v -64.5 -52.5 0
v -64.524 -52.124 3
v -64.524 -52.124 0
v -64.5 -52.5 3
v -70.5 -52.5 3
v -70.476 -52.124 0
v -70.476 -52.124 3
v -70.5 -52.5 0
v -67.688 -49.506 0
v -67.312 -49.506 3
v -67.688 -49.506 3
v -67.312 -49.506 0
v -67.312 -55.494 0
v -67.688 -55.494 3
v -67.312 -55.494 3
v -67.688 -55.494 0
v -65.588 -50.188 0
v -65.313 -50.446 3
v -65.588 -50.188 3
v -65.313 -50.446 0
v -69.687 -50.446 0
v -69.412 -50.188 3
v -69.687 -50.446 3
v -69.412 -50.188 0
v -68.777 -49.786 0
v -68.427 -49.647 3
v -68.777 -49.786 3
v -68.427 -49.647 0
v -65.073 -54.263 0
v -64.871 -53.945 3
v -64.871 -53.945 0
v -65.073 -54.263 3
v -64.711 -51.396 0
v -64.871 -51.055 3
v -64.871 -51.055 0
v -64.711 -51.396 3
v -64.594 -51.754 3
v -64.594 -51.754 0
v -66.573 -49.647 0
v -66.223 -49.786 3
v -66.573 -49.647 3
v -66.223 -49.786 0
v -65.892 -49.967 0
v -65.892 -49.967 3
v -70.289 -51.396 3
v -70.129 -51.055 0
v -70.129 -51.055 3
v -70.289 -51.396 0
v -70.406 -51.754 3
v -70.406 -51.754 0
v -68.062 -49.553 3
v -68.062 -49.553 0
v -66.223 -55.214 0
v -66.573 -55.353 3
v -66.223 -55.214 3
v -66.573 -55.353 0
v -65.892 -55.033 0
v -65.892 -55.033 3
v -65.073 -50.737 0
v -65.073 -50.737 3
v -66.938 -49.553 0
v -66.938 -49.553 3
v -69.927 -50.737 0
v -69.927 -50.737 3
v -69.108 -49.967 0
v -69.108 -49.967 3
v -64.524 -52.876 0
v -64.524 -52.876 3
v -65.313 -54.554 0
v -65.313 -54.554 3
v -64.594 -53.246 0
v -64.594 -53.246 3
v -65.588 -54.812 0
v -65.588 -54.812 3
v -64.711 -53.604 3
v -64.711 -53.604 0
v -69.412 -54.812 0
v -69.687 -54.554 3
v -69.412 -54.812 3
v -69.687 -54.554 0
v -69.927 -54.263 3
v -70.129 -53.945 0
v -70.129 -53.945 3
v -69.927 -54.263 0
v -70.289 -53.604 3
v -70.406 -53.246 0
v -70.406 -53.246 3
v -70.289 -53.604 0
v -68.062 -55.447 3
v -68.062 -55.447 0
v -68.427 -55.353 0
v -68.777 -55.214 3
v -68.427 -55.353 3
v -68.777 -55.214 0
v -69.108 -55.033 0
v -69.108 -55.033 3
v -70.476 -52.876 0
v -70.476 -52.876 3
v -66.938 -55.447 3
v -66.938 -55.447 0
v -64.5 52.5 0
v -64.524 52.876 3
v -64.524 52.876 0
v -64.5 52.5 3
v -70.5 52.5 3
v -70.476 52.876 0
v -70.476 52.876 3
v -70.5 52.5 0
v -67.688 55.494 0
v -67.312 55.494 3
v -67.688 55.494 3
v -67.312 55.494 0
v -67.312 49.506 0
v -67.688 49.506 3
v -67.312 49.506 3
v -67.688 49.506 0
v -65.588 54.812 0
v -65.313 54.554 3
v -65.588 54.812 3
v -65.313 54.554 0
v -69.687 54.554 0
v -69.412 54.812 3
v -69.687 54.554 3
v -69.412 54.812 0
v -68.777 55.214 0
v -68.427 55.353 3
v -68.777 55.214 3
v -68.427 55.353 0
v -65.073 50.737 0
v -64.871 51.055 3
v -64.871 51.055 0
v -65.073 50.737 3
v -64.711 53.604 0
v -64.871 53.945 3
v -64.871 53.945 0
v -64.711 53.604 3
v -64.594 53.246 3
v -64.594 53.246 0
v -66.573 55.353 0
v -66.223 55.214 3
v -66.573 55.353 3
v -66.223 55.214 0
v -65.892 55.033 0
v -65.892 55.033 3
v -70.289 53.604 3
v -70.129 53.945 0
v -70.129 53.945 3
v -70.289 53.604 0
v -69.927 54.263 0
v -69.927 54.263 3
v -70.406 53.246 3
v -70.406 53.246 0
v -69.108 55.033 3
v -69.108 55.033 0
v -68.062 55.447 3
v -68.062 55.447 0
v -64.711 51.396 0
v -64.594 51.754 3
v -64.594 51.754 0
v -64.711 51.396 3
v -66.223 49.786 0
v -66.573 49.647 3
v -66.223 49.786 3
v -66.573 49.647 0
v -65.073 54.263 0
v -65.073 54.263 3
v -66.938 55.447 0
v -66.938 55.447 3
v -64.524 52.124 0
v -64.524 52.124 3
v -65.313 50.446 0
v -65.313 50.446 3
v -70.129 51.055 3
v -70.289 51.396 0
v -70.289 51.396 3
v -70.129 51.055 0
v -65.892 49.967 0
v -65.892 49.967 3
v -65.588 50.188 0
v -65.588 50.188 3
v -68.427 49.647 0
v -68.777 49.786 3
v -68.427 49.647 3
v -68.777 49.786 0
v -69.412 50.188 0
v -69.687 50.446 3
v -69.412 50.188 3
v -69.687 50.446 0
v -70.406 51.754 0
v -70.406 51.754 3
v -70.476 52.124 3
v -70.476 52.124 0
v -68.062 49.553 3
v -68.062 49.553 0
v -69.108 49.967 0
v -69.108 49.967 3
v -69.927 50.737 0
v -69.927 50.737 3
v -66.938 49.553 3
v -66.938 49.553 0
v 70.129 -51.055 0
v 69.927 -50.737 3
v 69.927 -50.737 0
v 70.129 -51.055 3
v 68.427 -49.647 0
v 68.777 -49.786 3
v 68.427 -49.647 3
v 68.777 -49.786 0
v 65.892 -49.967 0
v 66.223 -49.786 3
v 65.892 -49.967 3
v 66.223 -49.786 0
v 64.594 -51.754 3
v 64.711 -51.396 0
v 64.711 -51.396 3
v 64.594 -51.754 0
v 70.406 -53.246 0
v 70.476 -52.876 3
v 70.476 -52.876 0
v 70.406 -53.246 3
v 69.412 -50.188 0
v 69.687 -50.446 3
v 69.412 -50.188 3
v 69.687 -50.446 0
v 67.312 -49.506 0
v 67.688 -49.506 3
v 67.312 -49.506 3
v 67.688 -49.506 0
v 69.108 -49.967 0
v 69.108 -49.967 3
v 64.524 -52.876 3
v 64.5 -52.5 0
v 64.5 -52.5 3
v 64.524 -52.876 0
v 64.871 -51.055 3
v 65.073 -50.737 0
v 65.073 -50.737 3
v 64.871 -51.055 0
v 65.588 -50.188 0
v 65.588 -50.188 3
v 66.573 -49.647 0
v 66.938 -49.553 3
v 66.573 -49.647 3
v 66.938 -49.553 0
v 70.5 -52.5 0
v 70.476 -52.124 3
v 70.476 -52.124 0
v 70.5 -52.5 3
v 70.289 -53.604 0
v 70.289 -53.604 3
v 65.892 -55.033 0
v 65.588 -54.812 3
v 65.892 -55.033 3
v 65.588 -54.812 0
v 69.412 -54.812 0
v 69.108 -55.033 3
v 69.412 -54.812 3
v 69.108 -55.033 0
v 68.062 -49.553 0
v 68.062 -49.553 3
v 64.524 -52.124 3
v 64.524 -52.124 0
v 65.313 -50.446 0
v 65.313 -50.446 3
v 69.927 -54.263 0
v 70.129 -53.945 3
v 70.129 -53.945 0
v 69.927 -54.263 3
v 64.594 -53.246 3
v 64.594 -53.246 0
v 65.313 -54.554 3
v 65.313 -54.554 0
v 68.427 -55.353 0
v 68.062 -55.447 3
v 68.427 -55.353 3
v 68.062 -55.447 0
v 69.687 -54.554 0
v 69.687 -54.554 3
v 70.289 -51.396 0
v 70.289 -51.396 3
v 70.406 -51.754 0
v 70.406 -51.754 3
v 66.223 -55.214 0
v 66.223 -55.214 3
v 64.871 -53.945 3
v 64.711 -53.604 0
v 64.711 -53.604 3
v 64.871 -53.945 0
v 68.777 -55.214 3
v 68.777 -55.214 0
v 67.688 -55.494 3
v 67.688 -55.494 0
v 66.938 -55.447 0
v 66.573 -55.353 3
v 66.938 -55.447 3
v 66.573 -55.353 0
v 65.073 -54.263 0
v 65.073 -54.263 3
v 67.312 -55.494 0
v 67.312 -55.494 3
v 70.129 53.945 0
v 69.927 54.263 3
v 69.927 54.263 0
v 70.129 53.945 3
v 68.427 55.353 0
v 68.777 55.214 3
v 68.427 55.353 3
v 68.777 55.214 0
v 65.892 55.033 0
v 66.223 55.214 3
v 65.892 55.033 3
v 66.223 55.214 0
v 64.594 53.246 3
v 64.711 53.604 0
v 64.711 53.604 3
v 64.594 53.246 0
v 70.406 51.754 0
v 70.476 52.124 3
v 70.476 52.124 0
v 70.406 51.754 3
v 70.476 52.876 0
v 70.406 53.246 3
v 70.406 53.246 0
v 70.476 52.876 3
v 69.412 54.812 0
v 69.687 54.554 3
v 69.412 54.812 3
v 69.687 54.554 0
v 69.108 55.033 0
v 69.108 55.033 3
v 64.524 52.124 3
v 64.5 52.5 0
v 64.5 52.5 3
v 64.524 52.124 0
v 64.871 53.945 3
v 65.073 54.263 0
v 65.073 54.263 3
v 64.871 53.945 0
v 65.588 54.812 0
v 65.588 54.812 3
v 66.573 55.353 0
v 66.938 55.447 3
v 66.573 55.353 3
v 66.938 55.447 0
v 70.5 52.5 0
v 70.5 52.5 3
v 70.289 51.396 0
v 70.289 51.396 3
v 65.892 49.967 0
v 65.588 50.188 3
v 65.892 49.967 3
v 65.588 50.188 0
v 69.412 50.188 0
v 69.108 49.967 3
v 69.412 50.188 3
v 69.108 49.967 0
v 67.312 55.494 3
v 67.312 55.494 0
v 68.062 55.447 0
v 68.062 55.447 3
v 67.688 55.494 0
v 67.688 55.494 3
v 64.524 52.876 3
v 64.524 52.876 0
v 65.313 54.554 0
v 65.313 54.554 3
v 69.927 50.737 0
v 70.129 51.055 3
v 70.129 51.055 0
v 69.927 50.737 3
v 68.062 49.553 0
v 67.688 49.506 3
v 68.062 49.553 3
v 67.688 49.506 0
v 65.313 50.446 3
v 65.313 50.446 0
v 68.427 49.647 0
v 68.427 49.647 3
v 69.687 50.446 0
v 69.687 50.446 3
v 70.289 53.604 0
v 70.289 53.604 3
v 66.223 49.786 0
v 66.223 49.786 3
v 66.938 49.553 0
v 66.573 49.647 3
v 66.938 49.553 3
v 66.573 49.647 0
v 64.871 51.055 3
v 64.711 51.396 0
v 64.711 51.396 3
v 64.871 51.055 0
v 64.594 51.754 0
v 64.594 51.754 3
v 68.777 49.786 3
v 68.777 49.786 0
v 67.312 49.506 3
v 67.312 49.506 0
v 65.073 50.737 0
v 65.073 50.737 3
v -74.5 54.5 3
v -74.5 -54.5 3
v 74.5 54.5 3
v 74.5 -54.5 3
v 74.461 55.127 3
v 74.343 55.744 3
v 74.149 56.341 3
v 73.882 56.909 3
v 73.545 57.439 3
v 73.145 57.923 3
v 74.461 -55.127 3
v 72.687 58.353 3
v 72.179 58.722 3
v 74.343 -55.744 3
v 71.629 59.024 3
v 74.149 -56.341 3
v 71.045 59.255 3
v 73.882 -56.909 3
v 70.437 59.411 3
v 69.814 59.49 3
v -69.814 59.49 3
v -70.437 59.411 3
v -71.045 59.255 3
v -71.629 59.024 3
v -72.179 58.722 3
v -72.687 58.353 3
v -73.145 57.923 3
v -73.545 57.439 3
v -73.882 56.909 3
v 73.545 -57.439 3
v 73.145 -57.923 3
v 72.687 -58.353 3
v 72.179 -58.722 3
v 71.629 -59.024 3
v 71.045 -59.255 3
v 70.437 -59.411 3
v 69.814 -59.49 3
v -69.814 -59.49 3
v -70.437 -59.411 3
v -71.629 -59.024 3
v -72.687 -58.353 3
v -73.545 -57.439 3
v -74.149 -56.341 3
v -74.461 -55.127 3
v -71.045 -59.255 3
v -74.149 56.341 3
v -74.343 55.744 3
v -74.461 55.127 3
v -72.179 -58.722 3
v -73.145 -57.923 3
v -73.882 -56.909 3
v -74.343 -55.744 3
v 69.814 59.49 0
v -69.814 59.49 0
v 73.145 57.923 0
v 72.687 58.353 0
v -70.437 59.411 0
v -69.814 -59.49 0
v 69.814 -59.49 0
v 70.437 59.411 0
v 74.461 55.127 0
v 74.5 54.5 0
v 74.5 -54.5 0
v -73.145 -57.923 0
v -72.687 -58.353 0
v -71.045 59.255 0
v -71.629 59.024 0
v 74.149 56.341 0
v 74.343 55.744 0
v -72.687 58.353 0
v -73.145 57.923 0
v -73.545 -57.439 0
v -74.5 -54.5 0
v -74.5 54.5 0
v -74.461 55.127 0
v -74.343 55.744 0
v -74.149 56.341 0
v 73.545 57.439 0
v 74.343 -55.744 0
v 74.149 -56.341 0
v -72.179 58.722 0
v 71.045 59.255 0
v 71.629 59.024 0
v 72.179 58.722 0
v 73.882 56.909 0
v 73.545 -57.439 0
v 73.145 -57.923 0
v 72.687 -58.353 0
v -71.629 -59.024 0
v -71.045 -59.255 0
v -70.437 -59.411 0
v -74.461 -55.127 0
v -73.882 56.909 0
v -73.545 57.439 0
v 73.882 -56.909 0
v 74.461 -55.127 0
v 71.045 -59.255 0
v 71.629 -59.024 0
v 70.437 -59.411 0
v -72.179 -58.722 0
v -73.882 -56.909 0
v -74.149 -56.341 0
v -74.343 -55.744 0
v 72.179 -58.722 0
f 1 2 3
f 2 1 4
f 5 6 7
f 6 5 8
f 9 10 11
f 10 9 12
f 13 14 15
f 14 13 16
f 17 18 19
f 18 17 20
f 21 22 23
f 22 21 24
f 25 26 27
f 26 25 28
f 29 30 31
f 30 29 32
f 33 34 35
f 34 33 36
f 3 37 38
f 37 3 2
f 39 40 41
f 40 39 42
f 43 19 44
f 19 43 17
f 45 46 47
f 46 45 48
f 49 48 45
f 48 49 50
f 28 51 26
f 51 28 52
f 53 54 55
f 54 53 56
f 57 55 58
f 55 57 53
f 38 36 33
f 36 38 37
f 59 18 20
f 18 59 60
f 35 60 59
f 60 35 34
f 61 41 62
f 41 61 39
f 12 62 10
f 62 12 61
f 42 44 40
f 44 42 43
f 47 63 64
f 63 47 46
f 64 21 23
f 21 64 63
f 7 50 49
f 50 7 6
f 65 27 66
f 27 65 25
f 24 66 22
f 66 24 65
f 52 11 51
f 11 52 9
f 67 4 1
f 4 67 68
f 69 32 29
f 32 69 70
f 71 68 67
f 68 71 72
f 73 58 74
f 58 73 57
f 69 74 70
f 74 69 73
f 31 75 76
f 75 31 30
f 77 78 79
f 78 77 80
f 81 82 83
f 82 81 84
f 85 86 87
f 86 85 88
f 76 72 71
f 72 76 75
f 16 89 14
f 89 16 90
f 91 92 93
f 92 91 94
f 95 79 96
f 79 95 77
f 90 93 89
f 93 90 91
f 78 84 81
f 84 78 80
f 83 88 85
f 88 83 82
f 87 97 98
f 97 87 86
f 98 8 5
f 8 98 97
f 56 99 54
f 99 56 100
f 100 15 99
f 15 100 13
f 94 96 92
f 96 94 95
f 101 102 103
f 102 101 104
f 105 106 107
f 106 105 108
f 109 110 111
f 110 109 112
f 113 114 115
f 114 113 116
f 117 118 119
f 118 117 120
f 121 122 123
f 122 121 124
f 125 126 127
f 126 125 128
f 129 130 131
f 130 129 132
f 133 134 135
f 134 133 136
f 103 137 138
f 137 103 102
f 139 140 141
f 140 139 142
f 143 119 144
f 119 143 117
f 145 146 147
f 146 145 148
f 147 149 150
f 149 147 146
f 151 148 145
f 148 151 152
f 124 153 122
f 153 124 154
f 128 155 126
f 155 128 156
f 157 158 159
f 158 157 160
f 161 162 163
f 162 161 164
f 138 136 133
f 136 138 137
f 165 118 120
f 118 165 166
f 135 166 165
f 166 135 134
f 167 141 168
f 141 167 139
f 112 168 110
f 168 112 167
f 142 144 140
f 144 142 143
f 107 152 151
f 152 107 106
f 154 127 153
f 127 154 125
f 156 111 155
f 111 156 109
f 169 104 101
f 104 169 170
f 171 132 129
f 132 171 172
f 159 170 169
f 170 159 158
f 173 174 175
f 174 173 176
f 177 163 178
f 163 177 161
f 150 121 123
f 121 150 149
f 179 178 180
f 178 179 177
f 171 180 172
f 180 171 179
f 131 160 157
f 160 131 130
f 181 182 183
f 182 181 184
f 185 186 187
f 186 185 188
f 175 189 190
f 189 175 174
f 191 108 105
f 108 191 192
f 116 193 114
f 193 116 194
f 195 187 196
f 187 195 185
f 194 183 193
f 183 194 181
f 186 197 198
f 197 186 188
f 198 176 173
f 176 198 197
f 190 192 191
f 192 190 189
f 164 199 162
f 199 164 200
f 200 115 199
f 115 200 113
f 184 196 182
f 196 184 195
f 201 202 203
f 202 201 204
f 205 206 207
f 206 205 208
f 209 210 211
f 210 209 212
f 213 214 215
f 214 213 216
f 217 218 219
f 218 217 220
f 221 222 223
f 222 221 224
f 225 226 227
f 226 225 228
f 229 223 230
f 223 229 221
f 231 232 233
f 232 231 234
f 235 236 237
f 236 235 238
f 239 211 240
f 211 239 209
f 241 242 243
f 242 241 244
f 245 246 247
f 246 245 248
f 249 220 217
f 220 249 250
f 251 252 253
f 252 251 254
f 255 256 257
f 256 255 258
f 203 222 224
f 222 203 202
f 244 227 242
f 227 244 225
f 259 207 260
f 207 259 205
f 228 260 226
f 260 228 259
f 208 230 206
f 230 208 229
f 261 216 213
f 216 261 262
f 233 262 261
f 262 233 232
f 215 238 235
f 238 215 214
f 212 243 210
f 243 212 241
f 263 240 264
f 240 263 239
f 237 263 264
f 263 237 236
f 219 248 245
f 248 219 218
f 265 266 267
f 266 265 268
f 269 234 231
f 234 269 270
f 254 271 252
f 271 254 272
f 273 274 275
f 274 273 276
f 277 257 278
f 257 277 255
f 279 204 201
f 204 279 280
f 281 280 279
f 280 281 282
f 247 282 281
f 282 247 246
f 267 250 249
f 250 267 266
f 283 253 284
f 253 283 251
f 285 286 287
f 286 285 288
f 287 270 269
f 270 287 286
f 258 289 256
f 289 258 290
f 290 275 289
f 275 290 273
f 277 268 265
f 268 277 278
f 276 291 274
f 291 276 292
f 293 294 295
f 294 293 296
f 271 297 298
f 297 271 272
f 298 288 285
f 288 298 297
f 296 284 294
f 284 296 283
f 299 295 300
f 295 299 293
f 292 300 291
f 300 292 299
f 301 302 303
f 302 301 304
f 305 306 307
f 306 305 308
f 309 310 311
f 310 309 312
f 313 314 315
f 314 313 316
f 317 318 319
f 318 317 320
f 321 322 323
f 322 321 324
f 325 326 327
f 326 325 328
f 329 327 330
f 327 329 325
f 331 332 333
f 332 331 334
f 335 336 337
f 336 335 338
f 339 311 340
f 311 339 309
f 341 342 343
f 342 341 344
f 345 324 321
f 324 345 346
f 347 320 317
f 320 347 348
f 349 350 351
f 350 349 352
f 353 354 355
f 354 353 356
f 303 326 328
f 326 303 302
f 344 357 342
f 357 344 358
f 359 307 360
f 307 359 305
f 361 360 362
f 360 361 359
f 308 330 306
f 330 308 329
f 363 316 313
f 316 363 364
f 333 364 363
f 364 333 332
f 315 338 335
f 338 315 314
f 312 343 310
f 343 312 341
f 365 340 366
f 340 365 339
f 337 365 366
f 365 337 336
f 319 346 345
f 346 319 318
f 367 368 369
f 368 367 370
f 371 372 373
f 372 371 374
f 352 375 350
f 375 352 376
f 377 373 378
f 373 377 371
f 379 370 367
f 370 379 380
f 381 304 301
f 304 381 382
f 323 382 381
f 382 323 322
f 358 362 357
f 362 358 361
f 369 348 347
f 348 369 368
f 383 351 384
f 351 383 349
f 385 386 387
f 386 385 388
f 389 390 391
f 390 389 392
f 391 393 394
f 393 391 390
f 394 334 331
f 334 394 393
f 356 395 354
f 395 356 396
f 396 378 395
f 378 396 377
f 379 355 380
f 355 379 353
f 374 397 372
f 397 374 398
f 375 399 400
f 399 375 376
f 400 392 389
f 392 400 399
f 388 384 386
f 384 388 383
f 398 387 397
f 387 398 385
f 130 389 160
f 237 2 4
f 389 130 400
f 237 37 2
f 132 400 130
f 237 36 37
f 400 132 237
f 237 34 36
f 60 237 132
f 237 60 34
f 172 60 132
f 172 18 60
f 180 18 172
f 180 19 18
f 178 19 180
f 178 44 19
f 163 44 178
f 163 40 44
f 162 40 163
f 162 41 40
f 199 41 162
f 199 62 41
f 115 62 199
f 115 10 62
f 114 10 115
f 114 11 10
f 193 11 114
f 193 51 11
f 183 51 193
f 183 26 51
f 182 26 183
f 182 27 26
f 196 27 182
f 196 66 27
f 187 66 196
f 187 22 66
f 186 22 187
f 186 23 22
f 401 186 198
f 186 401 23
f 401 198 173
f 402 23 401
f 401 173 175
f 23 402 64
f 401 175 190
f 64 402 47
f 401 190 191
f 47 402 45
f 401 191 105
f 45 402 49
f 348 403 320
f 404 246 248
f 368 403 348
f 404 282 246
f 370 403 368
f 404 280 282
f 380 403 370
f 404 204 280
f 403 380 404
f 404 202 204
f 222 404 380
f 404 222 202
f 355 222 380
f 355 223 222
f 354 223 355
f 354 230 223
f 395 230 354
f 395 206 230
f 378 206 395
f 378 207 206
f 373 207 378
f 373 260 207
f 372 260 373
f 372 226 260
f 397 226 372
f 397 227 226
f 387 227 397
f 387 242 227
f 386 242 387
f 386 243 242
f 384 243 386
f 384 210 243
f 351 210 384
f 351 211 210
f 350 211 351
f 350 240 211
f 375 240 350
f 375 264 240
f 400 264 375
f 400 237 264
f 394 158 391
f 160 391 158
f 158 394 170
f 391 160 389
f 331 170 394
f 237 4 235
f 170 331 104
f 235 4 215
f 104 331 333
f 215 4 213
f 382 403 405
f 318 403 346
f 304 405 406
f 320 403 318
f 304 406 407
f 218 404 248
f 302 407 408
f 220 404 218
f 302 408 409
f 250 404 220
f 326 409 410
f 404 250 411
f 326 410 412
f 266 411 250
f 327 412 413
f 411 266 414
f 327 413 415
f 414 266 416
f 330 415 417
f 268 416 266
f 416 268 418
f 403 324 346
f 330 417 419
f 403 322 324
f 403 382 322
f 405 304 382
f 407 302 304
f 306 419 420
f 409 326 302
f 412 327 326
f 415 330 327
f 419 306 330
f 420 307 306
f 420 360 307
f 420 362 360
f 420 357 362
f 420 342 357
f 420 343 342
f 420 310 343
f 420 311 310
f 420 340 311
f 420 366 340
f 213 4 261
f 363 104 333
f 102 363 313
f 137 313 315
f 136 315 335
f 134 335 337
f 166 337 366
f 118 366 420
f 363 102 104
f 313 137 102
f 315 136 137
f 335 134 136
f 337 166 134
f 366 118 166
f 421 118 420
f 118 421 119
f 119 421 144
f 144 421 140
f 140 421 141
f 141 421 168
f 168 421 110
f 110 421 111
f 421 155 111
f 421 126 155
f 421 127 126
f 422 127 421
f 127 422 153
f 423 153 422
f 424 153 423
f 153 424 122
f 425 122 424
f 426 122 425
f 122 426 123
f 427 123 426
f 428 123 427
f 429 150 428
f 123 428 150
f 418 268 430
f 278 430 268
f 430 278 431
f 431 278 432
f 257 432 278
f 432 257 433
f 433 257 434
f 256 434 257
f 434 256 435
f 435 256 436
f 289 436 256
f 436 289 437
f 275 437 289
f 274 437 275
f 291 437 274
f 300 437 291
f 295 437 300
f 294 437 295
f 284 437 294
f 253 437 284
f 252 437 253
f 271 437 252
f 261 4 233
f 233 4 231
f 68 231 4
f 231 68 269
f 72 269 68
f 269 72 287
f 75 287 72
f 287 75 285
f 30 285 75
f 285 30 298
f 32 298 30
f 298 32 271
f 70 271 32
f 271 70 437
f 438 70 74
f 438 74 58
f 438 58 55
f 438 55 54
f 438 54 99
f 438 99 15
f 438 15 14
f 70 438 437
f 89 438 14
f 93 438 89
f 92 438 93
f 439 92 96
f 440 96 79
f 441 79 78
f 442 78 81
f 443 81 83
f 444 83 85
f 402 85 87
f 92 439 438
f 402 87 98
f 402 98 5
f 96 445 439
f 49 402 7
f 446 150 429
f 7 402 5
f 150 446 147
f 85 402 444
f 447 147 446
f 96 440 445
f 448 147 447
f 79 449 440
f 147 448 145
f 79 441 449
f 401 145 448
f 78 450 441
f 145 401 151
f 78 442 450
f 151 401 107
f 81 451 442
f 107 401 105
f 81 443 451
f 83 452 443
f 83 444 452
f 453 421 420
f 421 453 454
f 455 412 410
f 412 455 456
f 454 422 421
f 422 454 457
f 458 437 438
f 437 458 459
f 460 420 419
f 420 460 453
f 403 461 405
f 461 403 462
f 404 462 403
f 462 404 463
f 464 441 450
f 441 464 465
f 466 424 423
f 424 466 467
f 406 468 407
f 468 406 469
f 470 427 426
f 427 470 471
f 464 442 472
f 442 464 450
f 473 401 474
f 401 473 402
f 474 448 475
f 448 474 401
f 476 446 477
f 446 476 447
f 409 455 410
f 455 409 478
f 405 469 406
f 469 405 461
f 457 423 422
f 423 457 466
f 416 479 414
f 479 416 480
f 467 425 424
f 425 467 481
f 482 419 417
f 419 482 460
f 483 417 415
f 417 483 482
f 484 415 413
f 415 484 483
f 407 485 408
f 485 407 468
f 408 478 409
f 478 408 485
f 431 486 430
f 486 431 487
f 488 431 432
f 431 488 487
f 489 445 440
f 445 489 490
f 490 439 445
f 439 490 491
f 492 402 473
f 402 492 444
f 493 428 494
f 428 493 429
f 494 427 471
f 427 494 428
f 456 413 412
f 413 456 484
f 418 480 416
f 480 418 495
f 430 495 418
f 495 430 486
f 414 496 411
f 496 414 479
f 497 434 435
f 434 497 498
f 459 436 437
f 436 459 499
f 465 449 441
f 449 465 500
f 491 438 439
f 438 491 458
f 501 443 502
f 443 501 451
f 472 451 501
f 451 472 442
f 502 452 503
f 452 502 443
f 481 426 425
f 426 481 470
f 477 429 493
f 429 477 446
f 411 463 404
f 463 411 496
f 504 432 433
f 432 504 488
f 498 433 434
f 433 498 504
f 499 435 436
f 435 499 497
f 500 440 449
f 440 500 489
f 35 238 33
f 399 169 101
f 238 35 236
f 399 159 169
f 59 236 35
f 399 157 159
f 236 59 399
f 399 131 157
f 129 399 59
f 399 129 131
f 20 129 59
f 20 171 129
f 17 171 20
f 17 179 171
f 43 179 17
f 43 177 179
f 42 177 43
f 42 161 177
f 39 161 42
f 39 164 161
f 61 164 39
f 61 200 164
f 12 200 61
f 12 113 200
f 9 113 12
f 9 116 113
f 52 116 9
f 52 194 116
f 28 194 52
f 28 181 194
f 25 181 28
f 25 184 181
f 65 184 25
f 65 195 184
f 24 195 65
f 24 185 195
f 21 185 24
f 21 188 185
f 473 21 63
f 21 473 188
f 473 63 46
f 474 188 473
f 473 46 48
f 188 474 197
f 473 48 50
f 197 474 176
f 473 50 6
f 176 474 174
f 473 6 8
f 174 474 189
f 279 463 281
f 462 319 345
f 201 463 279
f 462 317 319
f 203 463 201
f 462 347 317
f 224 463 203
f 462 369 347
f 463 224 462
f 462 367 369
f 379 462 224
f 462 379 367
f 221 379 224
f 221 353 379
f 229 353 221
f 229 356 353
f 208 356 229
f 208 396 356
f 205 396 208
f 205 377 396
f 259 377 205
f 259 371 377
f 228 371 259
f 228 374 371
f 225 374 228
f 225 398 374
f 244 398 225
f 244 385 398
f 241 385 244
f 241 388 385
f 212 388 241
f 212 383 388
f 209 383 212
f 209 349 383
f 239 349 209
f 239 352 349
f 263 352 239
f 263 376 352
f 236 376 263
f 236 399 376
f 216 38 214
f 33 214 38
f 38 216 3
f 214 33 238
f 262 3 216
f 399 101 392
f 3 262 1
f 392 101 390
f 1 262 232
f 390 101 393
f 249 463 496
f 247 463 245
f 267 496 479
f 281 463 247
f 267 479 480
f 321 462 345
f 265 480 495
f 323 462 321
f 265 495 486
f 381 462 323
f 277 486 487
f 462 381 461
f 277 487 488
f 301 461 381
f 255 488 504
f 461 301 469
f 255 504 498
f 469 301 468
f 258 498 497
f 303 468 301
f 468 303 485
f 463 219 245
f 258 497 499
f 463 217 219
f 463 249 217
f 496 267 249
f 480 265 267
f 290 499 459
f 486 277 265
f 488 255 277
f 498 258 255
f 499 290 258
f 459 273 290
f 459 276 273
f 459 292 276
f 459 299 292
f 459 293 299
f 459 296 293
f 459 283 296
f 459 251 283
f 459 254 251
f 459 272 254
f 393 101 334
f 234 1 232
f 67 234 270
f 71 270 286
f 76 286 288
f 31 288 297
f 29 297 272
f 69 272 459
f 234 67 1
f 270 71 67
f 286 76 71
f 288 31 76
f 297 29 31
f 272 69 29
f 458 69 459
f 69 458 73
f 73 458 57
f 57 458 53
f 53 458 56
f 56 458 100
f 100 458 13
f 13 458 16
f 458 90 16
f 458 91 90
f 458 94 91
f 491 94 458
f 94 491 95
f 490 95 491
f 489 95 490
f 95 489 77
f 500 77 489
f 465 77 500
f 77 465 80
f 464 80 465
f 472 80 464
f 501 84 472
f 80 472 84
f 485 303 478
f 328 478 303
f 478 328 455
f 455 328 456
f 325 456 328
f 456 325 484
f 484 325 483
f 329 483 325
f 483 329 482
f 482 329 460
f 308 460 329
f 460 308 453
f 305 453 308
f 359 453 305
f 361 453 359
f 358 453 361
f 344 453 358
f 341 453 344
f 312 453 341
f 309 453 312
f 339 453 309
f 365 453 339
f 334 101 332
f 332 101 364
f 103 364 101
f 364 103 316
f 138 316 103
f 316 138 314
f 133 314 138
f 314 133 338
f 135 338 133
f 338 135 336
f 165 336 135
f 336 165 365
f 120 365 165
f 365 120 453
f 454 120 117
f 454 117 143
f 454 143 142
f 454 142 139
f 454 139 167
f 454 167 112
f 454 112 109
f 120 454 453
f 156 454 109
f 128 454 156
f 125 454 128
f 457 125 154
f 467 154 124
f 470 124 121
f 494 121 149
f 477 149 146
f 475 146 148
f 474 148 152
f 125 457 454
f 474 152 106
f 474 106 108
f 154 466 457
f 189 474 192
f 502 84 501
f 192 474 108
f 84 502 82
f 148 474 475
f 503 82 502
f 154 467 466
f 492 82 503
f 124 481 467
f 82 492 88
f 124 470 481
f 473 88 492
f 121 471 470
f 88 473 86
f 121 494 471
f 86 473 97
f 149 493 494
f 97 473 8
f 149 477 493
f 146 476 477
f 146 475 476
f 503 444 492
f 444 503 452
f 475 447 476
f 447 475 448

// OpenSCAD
$fn = 50;


difference() {
	union() {
		hull() {
			translate(v = [-69.5000000000, 54.5000000000, 0]) {
				cylinder(h = 3, r = 5);
			}
			translate(v = [69.5000000000, 54.5000000000, 0]) {
				cylinder(h = 3, r = 5);
			}
			translate(v = [-69.5000000000, -54.5000000000, 0]) {
				cylinder(h = 3, r = 5);
			}
			translate(v = [69.5000000000, -54.5000000000, 0]) {
				cylinder(h = 3, r = 5);
			}
		}
	}
	union() {
		translate(v = [-67.5000000000, -52.5000000000, -100.0000000000]) {
			cylinder(h = 200, r = 3.0000000000);
		}
		translate(v = [-67.5000000000, 52.5000000000, -100.0000000000]) {
			cylinder(h = 200, r = 3.0000000000);
		}
		translate(v = [67.5000000000, -52.5000000000, -100.0000000000]) {
			cylinder(h = 200, r = 3.0000000000);
		}
		translate(v = [67.5000000000, 52.5000000000, -100.0000000000]) {
			cylinder(h = 200, r = 3.0000000000);
		}
	}
}
